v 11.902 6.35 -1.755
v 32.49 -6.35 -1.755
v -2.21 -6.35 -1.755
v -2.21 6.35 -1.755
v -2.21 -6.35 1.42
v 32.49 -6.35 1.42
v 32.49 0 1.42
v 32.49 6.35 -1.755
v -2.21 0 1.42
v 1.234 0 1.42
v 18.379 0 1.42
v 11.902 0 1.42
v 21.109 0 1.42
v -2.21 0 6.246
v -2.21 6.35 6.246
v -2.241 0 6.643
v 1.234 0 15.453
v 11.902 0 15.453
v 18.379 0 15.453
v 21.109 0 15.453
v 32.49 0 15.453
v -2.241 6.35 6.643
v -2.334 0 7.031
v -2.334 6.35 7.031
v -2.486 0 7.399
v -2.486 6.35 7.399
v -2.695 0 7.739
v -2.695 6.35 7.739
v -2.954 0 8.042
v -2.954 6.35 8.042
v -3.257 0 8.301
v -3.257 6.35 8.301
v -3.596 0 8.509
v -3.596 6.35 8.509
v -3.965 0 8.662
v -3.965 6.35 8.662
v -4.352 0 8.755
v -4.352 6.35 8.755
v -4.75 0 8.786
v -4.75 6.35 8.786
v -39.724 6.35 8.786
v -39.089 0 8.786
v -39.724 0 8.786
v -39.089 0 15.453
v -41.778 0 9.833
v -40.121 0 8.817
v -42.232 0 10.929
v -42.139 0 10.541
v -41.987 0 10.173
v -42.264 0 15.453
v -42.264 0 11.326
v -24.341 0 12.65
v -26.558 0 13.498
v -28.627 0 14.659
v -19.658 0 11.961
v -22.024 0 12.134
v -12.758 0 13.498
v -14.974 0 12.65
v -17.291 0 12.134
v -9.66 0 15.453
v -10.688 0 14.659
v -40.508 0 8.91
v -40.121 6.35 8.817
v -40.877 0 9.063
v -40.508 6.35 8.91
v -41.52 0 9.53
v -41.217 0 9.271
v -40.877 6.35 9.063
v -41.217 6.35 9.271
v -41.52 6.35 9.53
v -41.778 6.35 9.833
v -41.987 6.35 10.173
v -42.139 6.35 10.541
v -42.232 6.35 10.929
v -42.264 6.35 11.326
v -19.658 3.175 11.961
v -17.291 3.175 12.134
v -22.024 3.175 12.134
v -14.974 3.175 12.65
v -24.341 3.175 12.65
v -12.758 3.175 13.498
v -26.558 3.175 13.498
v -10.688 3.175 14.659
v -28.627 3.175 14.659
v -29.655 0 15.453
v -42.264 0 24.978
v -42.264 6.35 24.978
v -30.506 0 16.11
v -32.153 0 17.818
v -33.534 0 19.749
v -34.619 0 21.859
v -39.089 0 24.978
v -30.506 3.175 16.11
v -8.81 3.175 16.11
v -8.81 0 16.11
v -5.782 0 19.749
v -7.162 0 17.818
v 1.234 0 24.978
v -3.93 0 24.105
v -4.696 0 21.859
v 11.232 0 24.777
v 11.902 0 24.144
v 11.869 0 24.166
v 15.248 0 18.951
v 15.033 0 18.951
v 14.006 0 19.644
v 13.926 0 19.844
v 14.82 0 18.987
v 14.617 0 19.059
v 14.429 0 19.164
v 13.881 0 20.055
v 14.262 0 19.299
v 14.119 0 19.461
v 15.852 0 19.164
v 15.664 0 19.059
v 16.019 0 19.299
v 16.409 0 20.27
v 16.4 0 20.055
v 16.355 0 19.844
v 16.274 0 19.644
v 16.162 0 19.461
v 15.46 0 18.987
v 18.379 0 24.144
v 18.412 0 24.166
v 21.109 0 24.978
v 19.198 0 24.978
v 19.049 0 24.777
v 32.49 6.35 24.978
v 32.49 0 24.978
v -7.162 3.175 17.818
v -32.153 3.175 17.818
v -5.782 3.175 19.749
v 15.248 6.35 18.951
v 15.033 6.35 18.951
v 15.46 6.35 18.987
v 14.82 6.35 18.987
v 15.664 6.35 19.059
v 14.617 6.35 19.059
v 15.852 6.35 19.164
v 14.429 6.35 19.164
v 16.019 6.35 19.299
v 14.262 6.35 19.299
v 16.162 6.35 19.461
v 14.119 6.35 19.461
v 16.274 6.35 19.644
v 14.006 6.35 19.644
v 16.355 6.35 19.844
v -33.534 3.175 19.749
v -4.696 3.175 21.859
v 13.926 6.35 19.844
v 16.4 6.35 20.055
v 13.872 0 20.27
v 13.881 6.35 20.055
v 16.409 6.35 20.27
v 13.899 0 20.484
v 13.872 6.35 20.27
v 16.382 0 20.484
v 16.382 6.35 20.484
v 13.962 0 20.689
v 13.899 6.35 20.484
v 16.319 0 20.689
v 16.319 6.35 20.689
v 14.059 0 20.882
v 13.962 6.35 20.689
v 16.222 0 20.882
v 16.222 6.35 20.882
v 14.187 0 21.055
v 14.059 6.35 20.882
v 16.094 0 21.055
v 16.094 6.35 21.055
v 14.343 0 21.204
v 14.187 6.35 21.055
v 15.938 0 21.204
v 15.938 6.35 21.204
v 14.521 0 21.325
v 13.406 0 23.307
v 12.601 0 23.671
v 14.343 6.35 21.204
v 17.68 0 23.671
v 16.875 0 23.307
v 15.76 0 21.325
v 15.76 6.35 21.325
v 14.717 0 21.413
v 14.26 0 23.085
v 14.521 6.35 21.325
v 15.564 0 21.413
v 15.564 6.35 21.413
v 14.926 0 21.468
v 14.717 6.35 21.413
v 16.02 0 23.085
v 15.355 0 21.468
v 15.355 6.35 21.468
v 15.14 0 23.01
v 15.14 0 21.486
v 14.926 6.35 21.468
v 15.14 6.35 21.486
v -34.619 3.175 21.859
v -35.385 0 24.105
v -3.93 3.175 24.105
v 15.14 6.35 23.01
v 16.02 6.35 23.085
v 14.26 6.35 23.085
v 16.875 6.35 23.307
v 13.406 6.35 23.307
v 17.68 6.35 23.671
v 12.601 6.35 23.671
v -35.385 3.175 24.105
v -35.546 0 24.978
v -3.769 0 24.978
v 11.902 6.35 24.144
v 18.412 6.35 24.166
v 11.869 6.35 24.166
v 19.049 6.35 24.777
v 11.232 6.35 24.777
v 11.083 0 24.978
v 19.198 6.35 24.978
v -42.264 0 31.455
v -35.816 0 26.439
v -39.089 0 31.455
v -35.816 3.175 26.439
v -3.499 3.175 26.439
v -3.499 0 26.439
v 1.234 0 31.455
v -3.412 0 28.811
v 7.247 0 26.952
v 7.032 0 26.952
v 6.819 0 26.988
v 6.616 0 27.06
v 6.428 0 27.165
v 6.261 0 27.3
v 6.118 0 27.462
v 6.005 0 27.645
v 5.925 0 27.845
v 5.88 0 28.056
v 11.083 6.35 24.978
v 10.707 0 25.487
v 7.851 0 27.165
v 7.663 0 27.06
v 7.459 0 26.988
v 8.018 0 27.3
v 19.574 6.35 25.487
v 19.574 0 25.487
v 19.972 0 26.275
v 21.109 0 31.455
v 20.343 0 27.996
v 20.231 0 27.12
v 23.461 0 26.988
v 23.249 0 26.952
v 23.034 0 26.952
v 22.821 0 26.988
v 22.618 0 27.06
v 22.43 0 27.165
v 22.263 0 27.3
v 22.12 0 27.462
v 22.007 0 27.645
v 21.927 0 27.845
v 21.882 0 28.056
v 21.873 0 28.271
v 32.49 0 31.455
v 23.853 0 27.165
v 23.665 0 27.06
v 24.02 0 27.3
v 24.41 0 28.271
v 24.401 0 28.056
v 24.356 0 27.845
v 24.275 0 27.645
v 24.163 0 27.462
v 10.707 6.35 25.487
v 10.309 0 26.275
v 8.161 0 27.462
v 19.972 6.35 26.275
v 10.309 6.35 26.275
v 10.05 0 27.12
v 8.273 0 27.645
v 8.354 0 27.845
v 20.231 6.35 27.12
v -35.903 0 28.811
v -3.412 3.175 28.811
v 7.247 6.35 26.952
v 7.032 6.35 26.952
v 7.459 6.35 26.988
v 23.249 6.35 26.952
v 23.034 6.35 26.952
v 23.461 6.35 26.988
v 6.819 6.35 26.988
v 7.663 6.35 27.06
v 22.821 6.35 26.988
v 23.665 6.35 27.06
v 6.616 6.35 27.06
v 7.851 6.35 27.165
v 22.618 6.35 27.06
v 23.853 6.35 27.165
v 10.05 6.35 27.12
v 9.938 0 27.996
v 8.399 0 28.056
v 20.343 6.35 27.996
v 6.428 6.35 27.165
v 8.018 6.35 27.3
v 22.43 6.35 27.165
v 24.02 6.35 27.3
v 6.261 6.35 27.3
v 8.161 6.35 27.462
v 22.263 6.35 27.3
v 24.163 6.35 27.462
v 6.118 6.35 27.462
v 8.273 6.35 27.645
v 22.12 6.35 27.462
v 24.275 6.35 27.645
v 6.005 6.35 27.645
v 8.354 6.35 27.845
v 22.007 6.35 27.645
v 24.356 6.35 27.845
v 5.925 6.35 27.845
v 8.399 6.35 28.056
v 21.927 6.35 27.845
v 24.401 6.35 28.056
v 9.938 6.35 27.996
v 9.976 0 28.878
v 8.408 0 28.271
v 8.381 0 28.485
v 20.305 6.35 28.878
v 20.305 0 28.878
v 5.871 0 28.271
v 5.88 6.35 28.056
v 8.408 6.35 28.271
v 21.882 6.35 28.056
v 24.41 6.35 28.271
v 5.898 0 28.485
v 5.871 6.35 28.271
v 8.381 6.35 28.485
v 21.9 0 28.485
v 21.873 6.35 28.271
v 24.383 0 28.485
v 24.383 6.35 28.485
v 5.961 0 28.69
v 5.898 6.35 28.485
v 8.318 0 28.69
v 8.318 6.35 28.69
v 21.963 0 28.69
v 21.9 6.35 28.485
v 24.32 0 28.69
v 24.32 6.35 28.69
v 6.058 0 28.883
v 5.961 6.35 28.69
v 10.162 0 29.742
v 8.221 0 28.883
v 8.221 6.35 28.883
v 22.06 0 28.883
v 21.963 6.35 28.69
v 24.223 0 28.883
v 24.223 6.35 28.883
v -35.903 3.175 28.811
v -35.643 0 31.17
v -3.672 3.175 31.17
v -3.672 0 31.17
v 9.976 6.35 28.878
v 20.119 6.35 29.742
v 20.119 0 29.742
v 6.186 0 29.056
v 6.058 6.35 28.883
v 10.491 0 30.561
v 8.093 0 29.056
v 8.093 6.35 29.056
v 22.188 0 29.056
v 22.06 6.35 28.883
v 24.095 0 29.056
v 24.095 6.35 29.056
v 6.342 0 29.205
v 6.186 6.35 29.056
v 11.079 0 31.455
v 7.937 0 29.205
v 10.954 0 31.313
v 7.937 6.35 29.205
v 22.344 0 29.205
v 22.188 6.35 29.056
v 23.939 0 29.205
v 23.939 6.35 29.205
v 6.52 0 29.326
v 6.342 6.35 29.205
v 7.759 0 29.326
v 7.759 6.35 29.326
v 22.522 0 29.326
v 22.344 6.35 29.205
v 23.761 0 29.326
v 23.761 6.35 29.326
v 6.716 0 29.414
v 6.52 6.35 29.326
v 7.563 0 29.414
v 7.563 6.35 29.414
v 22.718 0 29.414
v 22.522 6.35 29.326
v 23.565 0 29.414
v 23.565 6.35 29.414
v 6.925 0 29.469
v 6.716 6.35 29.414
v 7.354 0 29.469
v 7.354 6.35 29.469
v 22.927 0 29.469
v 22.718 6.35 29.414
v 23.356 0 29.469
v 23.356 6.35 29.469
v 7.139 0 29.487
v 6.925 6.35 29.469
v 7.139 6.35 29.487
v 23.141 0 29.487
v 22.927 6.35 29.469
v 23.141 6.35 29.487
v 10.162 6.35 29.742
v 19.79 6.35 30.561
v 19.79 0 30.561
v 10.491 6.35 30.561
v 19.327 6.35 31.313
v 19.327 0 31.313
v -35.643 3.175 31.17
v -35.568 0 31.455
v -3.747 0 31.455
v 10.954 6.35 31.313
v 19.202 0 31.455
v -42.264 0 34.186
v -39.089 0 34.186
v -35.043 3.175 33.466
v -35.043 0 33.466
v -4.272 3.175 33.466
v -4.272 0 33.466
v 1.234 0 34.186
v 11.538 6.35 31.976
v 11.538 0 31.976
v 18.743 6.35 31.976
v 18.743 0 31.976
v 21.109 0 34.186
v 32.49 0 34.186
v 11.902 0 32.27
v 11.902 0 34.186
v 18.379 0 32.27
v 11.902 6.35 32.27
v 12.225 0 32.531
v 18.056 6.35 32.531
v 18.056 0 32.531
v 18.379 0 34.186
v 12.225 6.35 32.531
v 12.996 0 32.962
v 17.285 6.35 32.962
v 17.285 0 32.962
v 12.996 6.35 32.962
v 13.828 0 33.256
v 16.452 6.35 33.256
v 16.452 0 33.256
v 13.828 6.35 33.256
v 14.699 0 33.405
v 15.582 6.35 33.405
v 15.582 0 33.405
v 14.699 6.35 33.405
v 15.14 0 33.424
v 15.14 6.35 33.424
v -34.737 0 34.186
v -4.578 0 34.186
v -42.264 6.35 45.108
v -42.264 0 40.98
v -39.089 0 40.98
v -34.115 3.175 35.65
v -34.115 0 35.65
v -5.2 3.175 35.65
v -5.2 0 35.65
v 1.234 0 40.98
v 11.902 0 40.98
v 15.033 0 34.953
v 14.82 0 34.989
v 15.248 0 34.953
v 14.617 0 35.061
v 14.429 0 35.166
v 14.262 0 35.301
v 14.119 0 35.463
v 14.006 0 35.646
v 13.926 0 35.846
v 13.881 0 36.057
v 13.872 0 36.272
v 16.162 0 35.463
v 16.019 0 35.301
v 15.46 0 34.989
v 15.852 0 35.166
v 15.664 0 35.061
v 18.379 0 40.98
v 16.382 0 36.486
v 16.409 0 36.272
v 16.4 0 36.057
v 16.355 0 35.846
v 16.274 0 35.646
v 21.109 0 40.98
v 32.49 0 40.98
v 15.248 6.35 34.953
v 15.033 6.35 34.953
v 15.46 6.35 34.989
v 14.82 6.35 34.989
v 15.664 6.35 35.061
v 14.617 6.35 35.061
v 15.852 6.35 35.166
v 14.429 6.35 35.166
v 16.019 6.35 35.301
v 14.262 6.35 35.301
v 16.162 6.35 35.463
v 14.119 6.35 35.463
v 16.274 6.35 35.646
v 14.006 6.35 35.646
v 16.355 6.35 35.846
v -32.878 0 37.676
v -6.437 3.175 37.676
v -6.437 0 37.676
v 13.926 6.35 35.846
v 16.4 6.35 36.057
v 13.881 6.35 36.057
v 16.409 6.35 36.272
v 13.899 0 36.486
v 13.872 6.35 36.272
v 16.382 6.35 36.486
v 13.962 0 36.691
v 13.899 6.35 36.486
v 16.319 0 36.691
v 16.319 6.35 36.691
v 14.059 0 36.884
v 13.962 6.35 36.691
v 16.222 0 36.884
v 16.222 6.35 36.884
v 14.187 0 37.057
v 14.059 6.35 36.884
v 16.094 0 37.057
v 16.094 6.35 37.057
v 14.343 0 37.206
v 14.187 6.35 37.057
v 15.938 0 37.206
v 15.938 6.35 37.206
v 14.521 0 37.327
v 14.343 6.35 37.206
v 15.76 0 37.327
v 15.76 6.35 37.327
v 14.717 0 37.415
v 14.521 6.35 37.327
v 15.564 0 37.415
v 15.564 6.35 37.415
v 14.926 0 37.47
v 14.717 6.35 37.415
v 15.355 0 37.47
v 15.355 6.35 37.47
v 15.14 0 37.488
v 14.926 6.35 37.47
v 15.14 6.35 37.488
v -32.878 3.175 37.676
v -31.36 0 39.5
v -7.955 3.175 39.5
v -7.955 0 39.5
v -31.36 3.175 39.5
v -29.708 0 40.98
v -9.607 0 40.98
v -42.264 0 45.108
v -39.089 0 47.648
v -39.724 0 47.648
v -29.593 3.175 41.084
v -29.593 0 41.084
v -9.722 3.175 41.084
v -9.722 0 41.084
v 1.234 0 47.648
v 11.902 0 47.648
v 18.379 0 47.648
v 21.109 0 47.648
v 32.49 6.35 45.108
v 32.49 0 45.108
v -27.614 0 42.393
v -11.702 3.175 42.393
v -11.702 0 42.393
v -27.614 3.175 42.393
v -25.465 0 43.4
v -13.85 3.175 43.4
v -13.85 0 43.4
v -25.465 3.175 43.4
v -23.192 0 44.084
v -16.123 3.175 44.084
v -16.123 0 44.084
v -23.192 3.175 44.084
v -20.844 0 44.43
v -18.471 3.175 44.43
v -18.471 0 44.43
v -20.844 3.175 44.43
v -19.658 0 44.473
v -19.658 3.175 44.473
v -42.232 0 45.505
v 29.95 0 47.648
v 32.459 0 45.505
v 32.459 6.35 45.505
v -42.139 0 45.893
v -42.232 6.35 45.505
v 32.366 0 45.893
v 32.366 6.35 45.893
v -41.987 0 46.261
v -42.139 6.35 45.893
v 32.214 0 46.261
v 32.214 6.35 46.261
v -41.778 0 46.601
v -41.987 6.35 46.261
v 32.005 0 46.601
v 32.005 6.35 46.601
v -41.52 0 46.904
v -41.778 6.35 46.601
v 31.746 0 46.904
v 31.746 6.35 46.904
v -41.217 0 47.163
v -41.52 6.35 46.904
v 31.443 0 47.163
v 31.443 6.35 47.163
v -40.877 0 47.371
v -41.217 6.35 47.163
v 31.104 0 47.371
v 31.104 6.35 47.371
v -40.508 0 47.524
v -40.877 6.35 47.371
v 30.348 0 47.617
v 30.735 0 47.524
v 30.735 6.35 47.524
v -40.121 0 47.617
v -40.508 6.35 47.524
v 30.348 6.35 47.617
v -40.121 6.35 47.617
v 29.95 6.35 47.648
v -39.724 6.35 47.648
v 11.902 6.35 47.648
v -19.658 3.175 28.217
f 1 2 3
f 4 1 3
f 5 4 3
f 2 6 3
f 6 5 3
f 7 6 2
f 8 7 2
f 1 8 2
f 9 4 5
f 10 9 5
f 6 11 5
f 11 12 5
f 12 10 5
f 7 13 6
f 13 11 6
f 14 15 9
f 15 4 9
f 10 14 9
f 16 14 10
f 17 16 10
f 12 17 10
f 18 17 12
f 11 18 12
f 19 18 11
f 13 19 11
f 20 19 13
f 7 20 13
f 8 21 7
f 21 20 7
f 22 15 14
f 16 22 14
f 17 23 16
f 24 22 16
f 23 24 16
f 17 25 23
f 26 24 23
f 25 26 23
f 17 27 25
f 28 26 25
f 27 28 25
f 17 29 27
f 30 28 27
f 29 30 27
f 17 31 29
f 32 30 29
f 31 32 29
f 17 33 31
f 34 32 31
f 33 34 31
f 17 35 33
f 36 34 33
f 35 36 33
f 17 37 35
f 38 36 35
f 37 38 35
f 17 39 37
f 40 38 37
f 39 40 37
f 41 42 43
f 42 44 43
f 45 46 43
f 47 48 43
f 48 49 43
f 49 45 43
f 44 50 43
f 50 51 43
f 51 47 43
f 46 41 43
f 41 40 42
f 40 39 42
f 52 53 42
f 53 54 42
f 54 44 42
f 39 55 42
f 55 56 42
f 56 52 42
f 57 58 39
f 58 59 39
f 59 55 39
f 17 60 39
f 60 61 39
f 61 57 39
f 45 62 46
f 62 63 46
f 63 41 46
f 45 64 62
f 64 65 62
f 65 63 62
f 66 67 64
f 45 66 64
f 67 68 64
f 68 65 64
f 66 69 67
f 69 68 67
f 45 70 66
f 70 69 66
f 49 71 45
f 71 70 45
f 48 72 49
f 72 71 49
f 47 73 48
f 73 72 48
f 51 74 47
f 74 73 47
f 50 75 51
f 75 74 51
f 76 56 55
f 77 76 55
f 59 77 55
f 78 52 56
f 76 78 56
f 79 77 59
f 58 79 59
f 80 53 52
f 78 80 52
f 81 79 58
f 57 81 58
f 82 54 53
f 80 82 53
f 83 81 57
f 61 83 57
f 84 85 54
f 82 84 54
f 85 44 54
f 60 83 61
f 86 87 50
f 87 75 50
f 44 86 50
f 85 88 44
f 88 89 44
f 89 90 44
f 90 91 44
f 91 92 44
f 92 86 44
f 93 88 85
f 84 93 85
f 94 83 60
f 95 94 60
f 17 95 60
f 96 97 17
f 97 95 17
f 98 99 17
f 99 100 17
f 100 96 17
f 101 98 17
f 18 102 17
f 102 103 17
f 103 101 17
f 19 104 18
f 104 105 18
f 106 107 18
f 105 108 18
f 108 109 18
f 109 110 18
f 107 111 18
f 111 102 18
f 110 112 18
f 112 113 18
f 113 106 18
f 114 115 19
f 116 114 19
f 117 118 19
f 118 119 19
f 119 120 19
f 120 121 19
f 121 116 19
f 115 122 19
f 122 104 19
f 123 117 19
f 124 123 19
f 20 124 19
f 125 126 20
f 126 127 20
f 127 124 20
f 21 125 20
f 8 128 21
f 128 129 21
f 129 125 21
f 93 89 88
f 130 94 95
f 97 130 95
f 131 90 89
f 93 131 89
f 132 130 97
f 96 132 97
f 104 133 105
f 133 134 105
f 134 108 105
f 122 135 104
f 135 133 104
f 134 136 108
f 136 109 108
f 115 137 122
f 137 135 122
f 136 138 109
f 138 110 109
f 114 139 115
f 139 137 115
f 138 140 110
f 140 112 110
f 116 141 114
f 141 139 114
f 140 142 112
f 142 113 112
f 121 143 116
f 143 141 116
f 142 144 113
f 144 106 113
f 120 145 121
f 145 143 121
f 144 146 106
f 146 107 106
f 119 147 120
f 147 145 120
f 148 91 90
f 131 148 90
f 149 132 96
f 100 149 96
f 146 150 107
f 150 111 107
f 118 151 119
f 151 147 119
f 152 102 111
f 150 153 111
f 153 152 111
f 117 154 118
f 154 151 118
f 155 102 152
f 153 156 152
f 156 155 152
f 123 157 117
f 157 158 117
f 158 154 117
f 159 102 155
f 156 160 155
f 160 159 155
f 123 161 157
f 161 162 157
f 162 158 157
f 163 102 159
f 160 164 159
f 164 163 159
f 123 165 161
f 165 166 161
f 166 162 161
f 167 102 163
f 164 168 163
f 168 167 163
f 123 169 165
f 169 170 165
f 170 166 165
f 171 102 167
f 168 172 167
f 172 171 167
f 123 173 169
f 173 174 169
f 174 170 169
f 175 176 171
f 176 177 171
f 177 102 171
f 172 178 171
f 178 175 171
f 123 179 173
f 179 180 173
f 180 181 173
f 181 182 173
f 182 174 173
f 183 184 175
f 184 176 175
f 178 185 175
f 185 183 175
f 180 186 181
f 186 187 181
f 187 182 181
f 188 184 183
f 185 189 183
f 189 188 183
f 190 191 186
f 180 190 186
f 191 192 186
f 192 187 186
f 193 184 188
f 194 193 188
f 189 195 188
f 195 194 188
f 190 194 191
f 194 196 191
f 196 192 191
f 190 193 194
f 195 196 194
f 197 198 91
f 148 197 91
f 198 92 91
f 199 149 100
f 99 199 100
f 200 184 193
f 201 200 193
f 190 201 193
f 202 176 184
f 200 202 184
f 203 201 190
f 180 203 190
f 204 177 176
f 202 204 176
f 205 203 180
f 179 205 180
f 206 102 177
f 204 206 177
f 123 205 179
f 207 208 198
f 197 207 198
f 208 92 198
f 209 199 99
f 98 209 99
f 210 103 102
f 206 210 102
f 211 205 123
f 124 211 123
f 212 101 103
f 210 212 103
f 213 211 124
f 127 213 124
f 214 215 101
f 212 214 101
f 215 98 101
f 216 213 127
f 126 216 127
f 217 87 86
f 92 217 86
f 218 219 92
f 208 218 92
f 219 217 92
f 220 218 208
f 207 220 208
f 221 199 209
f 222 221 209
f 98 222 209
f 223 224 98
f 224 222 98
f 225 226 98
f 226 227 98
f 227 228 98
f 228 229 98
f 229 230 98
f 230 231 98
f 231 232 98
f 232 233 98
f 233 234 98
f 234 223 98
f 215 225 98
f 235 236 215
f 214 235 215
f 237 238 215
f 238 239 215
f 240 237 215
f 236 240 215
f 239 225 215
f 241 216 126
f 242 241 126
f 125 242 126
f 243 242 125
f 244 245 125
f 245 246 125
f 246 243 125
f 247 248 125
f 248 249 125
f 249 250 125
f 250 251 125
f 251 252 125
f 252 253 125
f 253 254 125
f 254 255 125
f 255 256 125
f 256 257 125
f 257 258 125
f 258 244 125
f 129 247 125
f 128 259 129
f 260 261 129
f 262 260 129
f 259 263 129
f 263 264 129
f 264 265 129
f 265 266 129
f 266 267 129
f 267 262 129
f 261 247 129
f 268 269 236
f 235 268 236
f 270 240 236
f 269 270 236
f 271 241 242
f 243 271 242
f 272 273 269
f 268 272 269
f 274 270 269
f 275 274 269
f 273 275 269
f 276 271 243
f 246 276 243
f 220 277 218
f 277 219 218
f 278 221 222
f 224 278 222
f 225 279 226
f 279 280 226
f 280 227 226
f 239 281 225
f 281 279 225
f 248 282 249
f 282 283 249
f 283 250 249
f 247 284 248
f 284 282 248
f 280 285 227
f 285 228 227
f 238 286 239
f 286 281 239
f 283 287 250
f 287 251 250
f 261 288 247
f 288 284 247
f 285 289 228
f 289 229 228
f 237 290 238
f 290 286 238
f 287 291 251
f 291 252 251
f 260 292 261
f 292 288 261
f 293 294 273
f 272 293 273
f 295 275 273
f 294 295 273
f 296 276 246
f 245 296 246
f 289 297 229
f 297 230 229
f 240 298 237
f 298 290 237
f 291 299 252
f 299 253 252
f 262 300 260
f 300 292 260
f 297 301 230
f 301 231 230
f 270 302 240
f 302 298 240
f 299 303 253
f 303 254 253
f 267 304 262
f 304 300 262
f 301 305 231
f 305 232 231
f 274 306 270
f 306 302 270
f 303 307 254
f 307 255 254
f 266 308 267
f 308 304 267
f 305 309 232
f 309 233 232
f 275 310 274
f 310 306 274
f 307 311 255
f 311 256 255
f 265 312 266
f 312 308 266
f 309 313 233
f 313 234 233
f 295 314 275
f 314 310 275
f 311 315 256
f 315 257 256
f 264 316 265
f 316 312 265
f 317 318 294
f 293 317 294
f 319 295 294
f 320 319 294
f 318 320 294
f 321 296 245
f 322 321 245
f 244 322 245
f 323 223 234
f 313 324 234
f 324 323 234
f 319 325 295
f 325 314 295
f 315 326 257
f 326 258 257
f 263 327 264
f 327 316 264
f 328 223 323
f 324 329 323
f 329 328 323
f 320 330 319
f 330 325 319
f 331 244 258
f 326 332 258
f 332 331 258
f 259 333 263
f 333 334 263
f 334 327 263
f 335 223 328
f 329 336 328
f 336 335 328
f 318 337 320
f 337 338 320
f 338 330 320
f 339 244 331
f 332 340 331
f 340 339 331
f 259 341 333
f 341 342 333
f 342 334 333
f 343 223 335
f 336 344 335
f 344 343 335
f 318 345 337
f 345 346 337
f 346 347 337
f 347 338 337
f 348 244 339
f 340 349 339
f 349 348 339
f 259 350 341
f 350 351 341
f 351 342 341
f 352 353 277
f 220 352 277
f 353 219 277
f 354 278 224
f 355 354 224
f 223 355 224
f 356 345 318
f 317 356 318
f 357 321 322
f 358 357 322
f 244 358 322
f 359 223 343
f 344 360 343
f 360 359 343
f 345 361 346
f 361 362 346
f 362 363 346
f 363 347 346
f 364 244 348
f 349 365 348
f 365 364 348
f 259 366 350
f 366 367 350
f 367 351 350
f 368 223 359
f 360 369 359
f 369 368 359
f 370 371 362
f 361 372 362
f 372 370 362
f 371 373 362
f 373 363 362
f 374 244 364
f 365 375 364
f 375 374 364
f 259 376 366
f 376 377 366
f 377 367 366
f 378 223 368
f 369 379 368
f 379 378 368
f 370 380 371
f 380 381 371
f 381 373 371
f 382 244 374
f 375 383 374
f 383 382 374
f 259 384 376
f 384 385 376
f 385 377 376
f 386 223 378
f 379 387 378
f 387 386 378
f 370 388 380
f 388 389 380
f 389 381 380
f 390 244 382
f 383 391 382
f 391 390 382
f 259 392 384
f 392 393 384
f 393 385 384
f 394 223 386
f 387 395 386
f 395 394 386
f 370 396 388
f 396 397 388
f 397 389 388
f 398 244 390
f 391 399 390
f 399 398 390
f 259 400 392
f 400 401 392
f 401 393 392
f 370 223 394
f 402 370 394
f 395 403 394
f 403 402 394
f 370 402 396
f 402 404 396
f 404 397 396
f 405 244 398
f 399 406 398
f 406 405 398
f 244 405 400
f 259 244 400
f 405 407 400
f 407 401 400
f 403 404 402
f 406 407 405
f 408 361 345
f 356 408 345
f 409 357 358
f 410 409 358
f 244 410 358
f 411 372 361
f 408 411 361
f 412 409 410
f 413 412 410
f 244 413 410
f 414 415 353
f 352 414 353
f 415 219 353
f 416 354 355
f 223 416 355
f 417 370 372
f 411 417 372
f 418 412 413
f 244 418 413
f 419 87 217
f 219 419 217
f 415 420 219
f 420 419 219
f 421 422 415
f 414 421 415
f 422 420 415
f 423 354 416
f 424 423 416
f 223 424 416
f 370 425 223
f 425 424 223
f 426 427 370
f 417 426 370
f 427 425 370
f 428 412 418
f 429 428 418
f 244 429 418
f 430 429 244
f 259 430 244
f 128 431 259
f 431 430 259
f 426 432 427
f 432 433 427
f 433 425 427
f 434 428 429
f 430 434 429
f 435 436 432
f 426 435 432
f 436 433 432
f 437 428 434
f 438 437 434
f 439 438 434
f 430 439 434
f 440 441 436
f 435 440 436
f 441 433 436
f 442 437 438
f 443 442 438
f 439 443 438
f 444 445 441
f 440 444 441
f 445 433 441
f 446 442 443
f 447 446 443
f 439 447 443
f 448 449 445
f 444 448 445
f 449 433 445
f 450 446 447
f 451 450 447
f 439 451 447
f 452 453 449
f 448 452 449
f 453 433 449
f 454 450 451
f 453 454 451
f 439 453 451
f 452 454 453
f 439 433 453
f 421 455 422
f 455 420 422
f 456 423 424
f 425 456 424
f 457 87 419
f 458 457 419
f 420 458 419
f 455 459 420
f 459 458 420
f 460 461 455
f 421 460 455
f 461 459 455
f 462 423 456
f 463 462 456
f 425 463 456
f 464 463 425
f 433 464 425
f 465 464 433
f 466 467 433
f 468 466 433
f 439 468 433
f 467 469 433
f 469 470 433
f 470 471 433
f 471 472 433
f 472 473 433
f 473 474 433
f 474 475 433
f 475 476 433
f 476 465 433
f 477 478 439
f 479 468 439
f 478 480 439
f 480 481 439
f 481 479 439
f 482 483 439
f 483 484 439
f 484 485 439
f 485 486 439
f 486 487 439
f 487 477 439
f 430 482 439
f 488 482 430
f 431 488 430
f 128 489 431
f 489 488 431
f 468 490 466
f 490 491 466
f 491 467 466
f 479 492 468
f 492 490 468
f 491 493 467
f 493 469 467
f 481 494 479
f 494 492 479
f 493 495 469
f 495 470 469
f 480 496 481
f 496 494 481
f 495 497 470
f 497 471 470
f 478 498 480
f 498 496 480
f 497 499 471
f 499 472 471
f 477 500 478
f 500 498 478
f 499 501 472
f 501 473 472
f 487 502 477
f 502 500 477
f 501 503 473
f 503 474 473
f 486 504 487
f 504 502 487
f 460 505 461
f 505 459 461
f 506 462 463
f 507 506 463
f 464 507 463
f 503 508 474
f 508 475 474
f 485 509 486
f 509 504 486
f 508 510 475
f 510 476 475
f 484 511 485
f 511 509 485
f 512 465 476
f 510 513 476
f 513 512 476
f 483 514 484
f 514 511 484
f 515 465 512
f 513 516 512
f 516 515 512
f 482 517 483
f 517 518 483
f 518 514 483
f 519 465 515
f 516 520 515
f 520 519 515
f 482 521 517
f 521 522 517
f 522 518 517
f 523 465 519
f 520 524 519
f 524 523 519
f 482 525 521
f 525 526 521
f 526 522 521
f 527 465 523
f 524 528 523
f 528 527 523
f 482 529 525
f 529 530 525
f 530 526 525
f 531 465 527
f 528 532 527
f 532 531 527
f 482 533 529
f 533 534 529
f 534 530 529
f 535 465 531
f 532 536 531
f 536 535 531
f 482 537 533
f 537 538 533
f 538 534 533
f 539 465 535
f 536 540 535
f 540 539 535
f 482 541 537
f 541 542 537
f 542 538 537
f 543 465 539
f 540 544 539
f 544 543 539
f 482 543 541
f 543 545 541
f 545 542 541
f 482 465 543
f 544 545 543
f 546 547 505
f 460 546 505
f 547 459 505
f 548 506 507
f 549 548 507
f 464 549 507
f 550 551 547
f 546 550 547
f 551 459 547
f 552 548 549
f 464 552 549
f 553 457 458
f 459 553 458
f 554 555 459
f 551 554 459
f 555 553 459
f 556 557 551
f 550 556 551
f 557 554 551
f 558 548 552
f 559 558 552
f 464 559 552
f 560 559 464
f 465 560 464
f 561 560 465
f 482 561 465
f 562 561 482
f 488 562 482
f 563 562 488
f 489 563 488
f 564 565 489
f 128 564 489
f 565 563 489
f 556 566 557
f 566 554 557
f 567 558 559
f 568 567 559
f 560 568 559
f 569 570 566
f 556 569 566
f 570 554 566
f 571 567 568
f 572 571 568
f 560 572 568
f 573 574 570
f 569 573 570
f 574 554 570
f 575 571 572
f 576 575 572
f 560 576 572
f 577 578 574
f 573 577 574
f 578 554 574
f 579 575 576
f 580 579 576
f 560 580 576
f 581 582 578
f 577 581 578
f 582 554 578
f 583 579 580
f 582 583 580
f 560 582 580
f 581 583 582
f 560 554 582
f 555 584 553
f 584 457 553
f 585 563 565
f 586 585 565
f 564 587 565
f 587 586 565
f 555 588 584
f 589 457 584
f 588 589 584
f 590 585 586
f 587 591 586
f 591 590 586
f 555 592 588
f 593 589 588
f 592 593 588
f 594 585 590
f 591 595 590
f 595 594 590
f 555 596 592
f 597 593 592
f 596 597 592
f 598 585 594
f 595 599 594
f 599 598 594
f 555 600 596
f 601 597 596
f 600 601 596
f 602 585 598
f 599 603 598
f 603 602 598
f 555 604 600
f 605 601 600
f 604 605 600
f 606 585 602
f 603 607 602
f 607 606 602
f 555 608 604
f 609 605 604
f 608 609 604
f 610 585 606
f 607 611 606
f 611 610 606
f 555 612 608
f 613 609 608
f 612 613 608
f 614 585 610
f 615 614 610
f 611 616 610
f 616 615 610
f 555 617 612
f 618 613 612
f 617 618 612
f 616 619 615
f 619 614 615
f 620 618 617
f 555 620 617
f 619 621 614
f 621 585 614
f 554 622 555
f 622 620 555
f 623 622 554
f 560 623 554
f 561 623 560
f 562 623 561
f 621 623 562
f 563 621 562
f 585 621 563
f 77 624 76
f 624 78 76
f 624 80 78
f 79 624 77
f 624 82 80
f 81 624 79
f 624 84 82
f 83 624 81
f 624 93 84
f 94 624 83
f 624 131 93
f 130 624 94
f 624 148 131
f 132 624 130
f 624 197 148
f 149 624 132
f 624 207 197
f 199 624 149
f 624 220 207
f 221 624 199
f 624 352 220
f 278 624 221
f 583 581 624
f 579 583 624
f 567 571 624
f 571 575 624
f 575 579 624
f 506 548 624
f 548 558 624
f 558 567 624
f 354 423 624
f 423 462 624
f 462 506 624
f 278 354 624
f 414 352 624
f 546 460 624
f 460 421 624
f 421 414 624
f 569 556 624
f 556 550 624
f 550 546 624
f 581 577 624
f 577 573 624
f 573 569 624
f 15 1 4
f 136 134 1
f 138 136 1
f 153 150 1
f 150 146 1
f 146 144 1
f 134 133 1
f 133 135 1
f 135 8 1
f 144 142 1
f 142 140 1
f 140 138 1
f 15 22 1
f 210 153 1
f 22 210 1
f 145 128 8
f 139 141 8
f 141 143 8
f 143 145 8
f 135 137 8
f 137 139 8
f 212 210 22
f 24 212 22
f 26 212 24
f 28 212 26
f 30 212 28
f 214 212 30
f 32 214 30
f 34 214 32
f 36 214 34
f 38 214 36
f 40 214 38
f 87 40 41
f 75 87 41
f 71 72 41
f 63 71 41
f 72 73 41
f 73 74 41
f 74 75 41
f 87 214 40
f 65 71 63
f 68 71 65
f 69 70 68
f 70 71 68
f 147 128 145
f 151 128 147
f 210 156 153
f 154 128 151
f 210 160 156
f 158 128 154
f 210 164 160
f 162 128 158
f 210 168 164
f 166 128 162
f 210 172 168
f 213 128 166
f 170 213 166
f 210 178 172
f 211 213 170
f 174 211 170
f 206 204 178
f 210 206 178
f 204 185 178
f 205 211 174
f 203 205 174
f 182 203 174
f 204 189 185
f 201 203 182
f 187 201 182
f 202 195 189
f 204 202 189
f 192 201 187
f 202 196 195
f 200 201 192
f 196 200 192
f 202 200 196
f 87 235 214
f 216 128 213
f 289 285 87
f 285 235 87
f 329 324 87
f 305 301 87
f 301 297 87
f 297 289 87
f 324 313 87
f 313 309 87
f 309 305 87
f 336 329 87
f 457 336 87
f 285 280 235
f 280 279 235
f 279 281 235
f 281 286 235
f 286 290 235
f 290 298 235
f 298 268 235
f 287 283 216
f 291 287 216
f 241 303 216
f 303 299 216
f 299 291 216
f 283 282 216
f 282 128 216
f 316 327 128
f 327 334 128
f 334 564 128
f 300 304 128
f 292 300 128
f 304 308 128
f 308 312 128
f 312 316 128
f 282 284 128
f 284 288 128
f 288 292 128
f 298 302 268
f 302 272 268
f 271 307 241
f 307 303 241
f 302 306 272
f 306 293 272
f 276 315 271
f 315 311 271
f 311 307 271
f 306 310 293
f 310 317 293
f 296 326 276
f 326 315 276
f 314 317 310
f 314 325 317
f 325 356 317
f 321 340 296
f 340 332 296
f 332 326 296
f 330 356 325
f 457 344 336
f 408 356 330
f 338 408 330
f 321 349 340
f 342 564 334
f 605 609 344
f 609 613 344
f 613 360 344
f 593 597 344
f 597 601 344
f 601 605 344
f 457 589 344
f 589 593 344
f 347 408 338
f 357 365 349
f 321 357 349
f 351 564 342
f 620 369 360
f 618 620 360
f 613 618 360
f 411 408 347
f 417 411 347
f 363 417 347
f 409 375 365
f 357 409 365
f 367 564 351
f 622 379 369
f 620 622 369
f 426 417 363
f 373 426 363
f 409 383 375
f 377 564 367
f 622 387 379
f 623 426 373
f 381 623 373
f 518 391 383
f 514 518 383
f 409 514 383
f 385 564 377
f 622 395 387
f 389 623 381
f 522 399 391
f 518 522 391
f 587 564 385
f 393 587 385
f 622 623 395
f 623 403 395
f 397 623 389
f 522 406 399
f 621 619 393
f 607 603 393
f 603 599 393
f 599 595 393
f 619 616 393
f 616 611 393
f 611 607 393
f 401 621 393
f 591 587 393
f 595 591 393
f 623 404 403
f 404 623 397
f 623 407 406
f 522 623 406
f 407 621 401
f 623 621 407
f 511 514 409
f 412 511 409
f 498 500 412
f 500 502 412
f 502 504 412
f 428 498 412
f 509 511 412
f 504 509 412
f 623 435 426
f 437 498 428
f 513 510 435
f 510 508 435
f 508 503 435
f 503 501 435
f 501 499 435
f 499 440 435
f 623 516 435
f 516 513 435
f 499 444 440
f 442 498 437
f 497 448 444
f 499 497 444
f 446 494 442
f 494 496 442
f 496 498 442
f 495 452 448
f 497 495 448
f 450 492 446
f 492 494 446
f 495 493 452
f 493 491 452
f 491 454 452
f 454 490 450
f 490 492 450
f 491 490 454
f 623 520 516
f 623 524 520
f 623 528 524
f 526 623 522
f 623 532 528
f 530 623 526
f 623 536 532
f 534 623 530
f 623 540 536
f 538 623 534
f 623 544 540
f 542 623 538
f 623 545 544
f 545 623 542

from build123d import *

# Parameters (mm, degrees)
SKETCH1_W           = 74.754
SKETCH1_H           = 38.862
SKETCH1_R           = 5.207
SKETCH1_R_2         = 16.256
SKETCH1_W_2         = 34.7
SKETCH1_H_2         = 10.541
BOSS_EXTRUDE1_DEPTH = 6.35
BOSS_EXTRUDE2_START = -3.175
SKETCH2_R           = 16.256
BOSS_EXTRUDE2_DEPTH = 3.175
SKETCH3_W           = 34.7
SKETCH3_H           = 3.175
BOSS_EXTRUDE3_DEPTH = 12.7
FILLET1_R           = 2.54
SKETCH4_R           = 1.27
CUT_EXTRUDE1_DEPTH  = 65.944794531


with BuildPart() as part:
    # Sketch1 → Boss-Extrude1 (new body)
    # profile 1 of 2: a face of its own
    with BuildSketch(Plane(origin=(0, 0, 0), x_dir=(1, 0, 0), z_dir=(0, 1, 0))):
        with Locations((-4.886569512, -28.216948841)):
            Rectangle(SKETCH1_W, SKETCH1_H)
        with Locations(Location((15.140430488, -28.216948841, 0), (0, 0, 270))):
            Circle(SKETCH1_R, mode=Mode.SUBTRACT)
        with Locations(Location((-19.657569512, -28.216948841, 0), (0, 0, 270))):
            Circle(SKETCH1_R_2, mode=Mode.SUBTRACT)
    # profile 2 of 2: a face of its own
    with BuildSketch(Plane(origin=(0, 0, 0), x_dir=(1, 0, 0), z_dir=(0, 1, 0))):
        with Locations((15.140430488, -3.515448841)):
            Rectangle(SKETCH1_W_2, SKETCH1_H_2)
    extrude(amount=BOSS_EXTRUDE1_DEPTH)

    # Sketch2 → Boss-Extrude2 (add)
    with BuildSketch(Plane(origin=(0, 6.35, 0), x_dir=(1, 0, 0), z_dir=(0, 1, 0)).offset(BOSS_EXTRUDE2_START)):
        with Locations(Location((-19.657569512, -28.216948841, 0), (0, 0, 270))):
            Circle(SKETCH2_R)
    extrude(amount=BOSS_EXTRUDE2_DEPTH)

    # Sketch3 → Boss-Extrude3 (add)
    with BuildSketch(Plane(origin=(0, 6.35, 0), x_dir=(1, 0, 0), z_dir=(0, 1, 0))):
        with Locations((15.140430488, 0.167551159)):
            Rectangle(SKETCH3_W, SKETCH3_H)
    extrude(amount=-BOSS_EXTRUDE3_DEPTH)

    # Fillet1
    fillet1_edges = [part.edges().sort_by_distance(p)[0] for p in [
        (32.490430488, 3.175, 47.647948841),
        (-42.263569512, 3.175, 47.647948841),
        (-42.263569512, 3.175, 8.785948841),
        (-2.209569512, 3.175, 8.785948841),
    ]]
    fillet(fillet1_edges, radius=FILLET1_R)

    # Sketch4 → Cut-Extrude1 (cut, through all)
    with BuildSketch(Plane(origin=(0, 6.35, 0), x_dir=(1, 0, 0), z_dir=(0, 1, 0))):
        with Locations(Location((15.140430488, -20.215948841, 0), (0, 0, 270))):
            Circle(SKETCH4_R)
        with Locations(Location((23.141430488, -28.216948841, 0), (0, 0, 270))):
            Circle(SKETCH4_R)
        with Locations(Location((15.140430488, -36.217948841, 0), (0, 0, 270))):
            Circle(SKETCH4_R)
        with Locations(Location((7.139430488, -28.216948841, 0), (0, 0, 270))):
            Circle(SKETCH4_R)
    extrude(amount=-CUT_EXTRUDE1_DEPTH, mode=Mode.SUBTRACT)


solid = part.part
